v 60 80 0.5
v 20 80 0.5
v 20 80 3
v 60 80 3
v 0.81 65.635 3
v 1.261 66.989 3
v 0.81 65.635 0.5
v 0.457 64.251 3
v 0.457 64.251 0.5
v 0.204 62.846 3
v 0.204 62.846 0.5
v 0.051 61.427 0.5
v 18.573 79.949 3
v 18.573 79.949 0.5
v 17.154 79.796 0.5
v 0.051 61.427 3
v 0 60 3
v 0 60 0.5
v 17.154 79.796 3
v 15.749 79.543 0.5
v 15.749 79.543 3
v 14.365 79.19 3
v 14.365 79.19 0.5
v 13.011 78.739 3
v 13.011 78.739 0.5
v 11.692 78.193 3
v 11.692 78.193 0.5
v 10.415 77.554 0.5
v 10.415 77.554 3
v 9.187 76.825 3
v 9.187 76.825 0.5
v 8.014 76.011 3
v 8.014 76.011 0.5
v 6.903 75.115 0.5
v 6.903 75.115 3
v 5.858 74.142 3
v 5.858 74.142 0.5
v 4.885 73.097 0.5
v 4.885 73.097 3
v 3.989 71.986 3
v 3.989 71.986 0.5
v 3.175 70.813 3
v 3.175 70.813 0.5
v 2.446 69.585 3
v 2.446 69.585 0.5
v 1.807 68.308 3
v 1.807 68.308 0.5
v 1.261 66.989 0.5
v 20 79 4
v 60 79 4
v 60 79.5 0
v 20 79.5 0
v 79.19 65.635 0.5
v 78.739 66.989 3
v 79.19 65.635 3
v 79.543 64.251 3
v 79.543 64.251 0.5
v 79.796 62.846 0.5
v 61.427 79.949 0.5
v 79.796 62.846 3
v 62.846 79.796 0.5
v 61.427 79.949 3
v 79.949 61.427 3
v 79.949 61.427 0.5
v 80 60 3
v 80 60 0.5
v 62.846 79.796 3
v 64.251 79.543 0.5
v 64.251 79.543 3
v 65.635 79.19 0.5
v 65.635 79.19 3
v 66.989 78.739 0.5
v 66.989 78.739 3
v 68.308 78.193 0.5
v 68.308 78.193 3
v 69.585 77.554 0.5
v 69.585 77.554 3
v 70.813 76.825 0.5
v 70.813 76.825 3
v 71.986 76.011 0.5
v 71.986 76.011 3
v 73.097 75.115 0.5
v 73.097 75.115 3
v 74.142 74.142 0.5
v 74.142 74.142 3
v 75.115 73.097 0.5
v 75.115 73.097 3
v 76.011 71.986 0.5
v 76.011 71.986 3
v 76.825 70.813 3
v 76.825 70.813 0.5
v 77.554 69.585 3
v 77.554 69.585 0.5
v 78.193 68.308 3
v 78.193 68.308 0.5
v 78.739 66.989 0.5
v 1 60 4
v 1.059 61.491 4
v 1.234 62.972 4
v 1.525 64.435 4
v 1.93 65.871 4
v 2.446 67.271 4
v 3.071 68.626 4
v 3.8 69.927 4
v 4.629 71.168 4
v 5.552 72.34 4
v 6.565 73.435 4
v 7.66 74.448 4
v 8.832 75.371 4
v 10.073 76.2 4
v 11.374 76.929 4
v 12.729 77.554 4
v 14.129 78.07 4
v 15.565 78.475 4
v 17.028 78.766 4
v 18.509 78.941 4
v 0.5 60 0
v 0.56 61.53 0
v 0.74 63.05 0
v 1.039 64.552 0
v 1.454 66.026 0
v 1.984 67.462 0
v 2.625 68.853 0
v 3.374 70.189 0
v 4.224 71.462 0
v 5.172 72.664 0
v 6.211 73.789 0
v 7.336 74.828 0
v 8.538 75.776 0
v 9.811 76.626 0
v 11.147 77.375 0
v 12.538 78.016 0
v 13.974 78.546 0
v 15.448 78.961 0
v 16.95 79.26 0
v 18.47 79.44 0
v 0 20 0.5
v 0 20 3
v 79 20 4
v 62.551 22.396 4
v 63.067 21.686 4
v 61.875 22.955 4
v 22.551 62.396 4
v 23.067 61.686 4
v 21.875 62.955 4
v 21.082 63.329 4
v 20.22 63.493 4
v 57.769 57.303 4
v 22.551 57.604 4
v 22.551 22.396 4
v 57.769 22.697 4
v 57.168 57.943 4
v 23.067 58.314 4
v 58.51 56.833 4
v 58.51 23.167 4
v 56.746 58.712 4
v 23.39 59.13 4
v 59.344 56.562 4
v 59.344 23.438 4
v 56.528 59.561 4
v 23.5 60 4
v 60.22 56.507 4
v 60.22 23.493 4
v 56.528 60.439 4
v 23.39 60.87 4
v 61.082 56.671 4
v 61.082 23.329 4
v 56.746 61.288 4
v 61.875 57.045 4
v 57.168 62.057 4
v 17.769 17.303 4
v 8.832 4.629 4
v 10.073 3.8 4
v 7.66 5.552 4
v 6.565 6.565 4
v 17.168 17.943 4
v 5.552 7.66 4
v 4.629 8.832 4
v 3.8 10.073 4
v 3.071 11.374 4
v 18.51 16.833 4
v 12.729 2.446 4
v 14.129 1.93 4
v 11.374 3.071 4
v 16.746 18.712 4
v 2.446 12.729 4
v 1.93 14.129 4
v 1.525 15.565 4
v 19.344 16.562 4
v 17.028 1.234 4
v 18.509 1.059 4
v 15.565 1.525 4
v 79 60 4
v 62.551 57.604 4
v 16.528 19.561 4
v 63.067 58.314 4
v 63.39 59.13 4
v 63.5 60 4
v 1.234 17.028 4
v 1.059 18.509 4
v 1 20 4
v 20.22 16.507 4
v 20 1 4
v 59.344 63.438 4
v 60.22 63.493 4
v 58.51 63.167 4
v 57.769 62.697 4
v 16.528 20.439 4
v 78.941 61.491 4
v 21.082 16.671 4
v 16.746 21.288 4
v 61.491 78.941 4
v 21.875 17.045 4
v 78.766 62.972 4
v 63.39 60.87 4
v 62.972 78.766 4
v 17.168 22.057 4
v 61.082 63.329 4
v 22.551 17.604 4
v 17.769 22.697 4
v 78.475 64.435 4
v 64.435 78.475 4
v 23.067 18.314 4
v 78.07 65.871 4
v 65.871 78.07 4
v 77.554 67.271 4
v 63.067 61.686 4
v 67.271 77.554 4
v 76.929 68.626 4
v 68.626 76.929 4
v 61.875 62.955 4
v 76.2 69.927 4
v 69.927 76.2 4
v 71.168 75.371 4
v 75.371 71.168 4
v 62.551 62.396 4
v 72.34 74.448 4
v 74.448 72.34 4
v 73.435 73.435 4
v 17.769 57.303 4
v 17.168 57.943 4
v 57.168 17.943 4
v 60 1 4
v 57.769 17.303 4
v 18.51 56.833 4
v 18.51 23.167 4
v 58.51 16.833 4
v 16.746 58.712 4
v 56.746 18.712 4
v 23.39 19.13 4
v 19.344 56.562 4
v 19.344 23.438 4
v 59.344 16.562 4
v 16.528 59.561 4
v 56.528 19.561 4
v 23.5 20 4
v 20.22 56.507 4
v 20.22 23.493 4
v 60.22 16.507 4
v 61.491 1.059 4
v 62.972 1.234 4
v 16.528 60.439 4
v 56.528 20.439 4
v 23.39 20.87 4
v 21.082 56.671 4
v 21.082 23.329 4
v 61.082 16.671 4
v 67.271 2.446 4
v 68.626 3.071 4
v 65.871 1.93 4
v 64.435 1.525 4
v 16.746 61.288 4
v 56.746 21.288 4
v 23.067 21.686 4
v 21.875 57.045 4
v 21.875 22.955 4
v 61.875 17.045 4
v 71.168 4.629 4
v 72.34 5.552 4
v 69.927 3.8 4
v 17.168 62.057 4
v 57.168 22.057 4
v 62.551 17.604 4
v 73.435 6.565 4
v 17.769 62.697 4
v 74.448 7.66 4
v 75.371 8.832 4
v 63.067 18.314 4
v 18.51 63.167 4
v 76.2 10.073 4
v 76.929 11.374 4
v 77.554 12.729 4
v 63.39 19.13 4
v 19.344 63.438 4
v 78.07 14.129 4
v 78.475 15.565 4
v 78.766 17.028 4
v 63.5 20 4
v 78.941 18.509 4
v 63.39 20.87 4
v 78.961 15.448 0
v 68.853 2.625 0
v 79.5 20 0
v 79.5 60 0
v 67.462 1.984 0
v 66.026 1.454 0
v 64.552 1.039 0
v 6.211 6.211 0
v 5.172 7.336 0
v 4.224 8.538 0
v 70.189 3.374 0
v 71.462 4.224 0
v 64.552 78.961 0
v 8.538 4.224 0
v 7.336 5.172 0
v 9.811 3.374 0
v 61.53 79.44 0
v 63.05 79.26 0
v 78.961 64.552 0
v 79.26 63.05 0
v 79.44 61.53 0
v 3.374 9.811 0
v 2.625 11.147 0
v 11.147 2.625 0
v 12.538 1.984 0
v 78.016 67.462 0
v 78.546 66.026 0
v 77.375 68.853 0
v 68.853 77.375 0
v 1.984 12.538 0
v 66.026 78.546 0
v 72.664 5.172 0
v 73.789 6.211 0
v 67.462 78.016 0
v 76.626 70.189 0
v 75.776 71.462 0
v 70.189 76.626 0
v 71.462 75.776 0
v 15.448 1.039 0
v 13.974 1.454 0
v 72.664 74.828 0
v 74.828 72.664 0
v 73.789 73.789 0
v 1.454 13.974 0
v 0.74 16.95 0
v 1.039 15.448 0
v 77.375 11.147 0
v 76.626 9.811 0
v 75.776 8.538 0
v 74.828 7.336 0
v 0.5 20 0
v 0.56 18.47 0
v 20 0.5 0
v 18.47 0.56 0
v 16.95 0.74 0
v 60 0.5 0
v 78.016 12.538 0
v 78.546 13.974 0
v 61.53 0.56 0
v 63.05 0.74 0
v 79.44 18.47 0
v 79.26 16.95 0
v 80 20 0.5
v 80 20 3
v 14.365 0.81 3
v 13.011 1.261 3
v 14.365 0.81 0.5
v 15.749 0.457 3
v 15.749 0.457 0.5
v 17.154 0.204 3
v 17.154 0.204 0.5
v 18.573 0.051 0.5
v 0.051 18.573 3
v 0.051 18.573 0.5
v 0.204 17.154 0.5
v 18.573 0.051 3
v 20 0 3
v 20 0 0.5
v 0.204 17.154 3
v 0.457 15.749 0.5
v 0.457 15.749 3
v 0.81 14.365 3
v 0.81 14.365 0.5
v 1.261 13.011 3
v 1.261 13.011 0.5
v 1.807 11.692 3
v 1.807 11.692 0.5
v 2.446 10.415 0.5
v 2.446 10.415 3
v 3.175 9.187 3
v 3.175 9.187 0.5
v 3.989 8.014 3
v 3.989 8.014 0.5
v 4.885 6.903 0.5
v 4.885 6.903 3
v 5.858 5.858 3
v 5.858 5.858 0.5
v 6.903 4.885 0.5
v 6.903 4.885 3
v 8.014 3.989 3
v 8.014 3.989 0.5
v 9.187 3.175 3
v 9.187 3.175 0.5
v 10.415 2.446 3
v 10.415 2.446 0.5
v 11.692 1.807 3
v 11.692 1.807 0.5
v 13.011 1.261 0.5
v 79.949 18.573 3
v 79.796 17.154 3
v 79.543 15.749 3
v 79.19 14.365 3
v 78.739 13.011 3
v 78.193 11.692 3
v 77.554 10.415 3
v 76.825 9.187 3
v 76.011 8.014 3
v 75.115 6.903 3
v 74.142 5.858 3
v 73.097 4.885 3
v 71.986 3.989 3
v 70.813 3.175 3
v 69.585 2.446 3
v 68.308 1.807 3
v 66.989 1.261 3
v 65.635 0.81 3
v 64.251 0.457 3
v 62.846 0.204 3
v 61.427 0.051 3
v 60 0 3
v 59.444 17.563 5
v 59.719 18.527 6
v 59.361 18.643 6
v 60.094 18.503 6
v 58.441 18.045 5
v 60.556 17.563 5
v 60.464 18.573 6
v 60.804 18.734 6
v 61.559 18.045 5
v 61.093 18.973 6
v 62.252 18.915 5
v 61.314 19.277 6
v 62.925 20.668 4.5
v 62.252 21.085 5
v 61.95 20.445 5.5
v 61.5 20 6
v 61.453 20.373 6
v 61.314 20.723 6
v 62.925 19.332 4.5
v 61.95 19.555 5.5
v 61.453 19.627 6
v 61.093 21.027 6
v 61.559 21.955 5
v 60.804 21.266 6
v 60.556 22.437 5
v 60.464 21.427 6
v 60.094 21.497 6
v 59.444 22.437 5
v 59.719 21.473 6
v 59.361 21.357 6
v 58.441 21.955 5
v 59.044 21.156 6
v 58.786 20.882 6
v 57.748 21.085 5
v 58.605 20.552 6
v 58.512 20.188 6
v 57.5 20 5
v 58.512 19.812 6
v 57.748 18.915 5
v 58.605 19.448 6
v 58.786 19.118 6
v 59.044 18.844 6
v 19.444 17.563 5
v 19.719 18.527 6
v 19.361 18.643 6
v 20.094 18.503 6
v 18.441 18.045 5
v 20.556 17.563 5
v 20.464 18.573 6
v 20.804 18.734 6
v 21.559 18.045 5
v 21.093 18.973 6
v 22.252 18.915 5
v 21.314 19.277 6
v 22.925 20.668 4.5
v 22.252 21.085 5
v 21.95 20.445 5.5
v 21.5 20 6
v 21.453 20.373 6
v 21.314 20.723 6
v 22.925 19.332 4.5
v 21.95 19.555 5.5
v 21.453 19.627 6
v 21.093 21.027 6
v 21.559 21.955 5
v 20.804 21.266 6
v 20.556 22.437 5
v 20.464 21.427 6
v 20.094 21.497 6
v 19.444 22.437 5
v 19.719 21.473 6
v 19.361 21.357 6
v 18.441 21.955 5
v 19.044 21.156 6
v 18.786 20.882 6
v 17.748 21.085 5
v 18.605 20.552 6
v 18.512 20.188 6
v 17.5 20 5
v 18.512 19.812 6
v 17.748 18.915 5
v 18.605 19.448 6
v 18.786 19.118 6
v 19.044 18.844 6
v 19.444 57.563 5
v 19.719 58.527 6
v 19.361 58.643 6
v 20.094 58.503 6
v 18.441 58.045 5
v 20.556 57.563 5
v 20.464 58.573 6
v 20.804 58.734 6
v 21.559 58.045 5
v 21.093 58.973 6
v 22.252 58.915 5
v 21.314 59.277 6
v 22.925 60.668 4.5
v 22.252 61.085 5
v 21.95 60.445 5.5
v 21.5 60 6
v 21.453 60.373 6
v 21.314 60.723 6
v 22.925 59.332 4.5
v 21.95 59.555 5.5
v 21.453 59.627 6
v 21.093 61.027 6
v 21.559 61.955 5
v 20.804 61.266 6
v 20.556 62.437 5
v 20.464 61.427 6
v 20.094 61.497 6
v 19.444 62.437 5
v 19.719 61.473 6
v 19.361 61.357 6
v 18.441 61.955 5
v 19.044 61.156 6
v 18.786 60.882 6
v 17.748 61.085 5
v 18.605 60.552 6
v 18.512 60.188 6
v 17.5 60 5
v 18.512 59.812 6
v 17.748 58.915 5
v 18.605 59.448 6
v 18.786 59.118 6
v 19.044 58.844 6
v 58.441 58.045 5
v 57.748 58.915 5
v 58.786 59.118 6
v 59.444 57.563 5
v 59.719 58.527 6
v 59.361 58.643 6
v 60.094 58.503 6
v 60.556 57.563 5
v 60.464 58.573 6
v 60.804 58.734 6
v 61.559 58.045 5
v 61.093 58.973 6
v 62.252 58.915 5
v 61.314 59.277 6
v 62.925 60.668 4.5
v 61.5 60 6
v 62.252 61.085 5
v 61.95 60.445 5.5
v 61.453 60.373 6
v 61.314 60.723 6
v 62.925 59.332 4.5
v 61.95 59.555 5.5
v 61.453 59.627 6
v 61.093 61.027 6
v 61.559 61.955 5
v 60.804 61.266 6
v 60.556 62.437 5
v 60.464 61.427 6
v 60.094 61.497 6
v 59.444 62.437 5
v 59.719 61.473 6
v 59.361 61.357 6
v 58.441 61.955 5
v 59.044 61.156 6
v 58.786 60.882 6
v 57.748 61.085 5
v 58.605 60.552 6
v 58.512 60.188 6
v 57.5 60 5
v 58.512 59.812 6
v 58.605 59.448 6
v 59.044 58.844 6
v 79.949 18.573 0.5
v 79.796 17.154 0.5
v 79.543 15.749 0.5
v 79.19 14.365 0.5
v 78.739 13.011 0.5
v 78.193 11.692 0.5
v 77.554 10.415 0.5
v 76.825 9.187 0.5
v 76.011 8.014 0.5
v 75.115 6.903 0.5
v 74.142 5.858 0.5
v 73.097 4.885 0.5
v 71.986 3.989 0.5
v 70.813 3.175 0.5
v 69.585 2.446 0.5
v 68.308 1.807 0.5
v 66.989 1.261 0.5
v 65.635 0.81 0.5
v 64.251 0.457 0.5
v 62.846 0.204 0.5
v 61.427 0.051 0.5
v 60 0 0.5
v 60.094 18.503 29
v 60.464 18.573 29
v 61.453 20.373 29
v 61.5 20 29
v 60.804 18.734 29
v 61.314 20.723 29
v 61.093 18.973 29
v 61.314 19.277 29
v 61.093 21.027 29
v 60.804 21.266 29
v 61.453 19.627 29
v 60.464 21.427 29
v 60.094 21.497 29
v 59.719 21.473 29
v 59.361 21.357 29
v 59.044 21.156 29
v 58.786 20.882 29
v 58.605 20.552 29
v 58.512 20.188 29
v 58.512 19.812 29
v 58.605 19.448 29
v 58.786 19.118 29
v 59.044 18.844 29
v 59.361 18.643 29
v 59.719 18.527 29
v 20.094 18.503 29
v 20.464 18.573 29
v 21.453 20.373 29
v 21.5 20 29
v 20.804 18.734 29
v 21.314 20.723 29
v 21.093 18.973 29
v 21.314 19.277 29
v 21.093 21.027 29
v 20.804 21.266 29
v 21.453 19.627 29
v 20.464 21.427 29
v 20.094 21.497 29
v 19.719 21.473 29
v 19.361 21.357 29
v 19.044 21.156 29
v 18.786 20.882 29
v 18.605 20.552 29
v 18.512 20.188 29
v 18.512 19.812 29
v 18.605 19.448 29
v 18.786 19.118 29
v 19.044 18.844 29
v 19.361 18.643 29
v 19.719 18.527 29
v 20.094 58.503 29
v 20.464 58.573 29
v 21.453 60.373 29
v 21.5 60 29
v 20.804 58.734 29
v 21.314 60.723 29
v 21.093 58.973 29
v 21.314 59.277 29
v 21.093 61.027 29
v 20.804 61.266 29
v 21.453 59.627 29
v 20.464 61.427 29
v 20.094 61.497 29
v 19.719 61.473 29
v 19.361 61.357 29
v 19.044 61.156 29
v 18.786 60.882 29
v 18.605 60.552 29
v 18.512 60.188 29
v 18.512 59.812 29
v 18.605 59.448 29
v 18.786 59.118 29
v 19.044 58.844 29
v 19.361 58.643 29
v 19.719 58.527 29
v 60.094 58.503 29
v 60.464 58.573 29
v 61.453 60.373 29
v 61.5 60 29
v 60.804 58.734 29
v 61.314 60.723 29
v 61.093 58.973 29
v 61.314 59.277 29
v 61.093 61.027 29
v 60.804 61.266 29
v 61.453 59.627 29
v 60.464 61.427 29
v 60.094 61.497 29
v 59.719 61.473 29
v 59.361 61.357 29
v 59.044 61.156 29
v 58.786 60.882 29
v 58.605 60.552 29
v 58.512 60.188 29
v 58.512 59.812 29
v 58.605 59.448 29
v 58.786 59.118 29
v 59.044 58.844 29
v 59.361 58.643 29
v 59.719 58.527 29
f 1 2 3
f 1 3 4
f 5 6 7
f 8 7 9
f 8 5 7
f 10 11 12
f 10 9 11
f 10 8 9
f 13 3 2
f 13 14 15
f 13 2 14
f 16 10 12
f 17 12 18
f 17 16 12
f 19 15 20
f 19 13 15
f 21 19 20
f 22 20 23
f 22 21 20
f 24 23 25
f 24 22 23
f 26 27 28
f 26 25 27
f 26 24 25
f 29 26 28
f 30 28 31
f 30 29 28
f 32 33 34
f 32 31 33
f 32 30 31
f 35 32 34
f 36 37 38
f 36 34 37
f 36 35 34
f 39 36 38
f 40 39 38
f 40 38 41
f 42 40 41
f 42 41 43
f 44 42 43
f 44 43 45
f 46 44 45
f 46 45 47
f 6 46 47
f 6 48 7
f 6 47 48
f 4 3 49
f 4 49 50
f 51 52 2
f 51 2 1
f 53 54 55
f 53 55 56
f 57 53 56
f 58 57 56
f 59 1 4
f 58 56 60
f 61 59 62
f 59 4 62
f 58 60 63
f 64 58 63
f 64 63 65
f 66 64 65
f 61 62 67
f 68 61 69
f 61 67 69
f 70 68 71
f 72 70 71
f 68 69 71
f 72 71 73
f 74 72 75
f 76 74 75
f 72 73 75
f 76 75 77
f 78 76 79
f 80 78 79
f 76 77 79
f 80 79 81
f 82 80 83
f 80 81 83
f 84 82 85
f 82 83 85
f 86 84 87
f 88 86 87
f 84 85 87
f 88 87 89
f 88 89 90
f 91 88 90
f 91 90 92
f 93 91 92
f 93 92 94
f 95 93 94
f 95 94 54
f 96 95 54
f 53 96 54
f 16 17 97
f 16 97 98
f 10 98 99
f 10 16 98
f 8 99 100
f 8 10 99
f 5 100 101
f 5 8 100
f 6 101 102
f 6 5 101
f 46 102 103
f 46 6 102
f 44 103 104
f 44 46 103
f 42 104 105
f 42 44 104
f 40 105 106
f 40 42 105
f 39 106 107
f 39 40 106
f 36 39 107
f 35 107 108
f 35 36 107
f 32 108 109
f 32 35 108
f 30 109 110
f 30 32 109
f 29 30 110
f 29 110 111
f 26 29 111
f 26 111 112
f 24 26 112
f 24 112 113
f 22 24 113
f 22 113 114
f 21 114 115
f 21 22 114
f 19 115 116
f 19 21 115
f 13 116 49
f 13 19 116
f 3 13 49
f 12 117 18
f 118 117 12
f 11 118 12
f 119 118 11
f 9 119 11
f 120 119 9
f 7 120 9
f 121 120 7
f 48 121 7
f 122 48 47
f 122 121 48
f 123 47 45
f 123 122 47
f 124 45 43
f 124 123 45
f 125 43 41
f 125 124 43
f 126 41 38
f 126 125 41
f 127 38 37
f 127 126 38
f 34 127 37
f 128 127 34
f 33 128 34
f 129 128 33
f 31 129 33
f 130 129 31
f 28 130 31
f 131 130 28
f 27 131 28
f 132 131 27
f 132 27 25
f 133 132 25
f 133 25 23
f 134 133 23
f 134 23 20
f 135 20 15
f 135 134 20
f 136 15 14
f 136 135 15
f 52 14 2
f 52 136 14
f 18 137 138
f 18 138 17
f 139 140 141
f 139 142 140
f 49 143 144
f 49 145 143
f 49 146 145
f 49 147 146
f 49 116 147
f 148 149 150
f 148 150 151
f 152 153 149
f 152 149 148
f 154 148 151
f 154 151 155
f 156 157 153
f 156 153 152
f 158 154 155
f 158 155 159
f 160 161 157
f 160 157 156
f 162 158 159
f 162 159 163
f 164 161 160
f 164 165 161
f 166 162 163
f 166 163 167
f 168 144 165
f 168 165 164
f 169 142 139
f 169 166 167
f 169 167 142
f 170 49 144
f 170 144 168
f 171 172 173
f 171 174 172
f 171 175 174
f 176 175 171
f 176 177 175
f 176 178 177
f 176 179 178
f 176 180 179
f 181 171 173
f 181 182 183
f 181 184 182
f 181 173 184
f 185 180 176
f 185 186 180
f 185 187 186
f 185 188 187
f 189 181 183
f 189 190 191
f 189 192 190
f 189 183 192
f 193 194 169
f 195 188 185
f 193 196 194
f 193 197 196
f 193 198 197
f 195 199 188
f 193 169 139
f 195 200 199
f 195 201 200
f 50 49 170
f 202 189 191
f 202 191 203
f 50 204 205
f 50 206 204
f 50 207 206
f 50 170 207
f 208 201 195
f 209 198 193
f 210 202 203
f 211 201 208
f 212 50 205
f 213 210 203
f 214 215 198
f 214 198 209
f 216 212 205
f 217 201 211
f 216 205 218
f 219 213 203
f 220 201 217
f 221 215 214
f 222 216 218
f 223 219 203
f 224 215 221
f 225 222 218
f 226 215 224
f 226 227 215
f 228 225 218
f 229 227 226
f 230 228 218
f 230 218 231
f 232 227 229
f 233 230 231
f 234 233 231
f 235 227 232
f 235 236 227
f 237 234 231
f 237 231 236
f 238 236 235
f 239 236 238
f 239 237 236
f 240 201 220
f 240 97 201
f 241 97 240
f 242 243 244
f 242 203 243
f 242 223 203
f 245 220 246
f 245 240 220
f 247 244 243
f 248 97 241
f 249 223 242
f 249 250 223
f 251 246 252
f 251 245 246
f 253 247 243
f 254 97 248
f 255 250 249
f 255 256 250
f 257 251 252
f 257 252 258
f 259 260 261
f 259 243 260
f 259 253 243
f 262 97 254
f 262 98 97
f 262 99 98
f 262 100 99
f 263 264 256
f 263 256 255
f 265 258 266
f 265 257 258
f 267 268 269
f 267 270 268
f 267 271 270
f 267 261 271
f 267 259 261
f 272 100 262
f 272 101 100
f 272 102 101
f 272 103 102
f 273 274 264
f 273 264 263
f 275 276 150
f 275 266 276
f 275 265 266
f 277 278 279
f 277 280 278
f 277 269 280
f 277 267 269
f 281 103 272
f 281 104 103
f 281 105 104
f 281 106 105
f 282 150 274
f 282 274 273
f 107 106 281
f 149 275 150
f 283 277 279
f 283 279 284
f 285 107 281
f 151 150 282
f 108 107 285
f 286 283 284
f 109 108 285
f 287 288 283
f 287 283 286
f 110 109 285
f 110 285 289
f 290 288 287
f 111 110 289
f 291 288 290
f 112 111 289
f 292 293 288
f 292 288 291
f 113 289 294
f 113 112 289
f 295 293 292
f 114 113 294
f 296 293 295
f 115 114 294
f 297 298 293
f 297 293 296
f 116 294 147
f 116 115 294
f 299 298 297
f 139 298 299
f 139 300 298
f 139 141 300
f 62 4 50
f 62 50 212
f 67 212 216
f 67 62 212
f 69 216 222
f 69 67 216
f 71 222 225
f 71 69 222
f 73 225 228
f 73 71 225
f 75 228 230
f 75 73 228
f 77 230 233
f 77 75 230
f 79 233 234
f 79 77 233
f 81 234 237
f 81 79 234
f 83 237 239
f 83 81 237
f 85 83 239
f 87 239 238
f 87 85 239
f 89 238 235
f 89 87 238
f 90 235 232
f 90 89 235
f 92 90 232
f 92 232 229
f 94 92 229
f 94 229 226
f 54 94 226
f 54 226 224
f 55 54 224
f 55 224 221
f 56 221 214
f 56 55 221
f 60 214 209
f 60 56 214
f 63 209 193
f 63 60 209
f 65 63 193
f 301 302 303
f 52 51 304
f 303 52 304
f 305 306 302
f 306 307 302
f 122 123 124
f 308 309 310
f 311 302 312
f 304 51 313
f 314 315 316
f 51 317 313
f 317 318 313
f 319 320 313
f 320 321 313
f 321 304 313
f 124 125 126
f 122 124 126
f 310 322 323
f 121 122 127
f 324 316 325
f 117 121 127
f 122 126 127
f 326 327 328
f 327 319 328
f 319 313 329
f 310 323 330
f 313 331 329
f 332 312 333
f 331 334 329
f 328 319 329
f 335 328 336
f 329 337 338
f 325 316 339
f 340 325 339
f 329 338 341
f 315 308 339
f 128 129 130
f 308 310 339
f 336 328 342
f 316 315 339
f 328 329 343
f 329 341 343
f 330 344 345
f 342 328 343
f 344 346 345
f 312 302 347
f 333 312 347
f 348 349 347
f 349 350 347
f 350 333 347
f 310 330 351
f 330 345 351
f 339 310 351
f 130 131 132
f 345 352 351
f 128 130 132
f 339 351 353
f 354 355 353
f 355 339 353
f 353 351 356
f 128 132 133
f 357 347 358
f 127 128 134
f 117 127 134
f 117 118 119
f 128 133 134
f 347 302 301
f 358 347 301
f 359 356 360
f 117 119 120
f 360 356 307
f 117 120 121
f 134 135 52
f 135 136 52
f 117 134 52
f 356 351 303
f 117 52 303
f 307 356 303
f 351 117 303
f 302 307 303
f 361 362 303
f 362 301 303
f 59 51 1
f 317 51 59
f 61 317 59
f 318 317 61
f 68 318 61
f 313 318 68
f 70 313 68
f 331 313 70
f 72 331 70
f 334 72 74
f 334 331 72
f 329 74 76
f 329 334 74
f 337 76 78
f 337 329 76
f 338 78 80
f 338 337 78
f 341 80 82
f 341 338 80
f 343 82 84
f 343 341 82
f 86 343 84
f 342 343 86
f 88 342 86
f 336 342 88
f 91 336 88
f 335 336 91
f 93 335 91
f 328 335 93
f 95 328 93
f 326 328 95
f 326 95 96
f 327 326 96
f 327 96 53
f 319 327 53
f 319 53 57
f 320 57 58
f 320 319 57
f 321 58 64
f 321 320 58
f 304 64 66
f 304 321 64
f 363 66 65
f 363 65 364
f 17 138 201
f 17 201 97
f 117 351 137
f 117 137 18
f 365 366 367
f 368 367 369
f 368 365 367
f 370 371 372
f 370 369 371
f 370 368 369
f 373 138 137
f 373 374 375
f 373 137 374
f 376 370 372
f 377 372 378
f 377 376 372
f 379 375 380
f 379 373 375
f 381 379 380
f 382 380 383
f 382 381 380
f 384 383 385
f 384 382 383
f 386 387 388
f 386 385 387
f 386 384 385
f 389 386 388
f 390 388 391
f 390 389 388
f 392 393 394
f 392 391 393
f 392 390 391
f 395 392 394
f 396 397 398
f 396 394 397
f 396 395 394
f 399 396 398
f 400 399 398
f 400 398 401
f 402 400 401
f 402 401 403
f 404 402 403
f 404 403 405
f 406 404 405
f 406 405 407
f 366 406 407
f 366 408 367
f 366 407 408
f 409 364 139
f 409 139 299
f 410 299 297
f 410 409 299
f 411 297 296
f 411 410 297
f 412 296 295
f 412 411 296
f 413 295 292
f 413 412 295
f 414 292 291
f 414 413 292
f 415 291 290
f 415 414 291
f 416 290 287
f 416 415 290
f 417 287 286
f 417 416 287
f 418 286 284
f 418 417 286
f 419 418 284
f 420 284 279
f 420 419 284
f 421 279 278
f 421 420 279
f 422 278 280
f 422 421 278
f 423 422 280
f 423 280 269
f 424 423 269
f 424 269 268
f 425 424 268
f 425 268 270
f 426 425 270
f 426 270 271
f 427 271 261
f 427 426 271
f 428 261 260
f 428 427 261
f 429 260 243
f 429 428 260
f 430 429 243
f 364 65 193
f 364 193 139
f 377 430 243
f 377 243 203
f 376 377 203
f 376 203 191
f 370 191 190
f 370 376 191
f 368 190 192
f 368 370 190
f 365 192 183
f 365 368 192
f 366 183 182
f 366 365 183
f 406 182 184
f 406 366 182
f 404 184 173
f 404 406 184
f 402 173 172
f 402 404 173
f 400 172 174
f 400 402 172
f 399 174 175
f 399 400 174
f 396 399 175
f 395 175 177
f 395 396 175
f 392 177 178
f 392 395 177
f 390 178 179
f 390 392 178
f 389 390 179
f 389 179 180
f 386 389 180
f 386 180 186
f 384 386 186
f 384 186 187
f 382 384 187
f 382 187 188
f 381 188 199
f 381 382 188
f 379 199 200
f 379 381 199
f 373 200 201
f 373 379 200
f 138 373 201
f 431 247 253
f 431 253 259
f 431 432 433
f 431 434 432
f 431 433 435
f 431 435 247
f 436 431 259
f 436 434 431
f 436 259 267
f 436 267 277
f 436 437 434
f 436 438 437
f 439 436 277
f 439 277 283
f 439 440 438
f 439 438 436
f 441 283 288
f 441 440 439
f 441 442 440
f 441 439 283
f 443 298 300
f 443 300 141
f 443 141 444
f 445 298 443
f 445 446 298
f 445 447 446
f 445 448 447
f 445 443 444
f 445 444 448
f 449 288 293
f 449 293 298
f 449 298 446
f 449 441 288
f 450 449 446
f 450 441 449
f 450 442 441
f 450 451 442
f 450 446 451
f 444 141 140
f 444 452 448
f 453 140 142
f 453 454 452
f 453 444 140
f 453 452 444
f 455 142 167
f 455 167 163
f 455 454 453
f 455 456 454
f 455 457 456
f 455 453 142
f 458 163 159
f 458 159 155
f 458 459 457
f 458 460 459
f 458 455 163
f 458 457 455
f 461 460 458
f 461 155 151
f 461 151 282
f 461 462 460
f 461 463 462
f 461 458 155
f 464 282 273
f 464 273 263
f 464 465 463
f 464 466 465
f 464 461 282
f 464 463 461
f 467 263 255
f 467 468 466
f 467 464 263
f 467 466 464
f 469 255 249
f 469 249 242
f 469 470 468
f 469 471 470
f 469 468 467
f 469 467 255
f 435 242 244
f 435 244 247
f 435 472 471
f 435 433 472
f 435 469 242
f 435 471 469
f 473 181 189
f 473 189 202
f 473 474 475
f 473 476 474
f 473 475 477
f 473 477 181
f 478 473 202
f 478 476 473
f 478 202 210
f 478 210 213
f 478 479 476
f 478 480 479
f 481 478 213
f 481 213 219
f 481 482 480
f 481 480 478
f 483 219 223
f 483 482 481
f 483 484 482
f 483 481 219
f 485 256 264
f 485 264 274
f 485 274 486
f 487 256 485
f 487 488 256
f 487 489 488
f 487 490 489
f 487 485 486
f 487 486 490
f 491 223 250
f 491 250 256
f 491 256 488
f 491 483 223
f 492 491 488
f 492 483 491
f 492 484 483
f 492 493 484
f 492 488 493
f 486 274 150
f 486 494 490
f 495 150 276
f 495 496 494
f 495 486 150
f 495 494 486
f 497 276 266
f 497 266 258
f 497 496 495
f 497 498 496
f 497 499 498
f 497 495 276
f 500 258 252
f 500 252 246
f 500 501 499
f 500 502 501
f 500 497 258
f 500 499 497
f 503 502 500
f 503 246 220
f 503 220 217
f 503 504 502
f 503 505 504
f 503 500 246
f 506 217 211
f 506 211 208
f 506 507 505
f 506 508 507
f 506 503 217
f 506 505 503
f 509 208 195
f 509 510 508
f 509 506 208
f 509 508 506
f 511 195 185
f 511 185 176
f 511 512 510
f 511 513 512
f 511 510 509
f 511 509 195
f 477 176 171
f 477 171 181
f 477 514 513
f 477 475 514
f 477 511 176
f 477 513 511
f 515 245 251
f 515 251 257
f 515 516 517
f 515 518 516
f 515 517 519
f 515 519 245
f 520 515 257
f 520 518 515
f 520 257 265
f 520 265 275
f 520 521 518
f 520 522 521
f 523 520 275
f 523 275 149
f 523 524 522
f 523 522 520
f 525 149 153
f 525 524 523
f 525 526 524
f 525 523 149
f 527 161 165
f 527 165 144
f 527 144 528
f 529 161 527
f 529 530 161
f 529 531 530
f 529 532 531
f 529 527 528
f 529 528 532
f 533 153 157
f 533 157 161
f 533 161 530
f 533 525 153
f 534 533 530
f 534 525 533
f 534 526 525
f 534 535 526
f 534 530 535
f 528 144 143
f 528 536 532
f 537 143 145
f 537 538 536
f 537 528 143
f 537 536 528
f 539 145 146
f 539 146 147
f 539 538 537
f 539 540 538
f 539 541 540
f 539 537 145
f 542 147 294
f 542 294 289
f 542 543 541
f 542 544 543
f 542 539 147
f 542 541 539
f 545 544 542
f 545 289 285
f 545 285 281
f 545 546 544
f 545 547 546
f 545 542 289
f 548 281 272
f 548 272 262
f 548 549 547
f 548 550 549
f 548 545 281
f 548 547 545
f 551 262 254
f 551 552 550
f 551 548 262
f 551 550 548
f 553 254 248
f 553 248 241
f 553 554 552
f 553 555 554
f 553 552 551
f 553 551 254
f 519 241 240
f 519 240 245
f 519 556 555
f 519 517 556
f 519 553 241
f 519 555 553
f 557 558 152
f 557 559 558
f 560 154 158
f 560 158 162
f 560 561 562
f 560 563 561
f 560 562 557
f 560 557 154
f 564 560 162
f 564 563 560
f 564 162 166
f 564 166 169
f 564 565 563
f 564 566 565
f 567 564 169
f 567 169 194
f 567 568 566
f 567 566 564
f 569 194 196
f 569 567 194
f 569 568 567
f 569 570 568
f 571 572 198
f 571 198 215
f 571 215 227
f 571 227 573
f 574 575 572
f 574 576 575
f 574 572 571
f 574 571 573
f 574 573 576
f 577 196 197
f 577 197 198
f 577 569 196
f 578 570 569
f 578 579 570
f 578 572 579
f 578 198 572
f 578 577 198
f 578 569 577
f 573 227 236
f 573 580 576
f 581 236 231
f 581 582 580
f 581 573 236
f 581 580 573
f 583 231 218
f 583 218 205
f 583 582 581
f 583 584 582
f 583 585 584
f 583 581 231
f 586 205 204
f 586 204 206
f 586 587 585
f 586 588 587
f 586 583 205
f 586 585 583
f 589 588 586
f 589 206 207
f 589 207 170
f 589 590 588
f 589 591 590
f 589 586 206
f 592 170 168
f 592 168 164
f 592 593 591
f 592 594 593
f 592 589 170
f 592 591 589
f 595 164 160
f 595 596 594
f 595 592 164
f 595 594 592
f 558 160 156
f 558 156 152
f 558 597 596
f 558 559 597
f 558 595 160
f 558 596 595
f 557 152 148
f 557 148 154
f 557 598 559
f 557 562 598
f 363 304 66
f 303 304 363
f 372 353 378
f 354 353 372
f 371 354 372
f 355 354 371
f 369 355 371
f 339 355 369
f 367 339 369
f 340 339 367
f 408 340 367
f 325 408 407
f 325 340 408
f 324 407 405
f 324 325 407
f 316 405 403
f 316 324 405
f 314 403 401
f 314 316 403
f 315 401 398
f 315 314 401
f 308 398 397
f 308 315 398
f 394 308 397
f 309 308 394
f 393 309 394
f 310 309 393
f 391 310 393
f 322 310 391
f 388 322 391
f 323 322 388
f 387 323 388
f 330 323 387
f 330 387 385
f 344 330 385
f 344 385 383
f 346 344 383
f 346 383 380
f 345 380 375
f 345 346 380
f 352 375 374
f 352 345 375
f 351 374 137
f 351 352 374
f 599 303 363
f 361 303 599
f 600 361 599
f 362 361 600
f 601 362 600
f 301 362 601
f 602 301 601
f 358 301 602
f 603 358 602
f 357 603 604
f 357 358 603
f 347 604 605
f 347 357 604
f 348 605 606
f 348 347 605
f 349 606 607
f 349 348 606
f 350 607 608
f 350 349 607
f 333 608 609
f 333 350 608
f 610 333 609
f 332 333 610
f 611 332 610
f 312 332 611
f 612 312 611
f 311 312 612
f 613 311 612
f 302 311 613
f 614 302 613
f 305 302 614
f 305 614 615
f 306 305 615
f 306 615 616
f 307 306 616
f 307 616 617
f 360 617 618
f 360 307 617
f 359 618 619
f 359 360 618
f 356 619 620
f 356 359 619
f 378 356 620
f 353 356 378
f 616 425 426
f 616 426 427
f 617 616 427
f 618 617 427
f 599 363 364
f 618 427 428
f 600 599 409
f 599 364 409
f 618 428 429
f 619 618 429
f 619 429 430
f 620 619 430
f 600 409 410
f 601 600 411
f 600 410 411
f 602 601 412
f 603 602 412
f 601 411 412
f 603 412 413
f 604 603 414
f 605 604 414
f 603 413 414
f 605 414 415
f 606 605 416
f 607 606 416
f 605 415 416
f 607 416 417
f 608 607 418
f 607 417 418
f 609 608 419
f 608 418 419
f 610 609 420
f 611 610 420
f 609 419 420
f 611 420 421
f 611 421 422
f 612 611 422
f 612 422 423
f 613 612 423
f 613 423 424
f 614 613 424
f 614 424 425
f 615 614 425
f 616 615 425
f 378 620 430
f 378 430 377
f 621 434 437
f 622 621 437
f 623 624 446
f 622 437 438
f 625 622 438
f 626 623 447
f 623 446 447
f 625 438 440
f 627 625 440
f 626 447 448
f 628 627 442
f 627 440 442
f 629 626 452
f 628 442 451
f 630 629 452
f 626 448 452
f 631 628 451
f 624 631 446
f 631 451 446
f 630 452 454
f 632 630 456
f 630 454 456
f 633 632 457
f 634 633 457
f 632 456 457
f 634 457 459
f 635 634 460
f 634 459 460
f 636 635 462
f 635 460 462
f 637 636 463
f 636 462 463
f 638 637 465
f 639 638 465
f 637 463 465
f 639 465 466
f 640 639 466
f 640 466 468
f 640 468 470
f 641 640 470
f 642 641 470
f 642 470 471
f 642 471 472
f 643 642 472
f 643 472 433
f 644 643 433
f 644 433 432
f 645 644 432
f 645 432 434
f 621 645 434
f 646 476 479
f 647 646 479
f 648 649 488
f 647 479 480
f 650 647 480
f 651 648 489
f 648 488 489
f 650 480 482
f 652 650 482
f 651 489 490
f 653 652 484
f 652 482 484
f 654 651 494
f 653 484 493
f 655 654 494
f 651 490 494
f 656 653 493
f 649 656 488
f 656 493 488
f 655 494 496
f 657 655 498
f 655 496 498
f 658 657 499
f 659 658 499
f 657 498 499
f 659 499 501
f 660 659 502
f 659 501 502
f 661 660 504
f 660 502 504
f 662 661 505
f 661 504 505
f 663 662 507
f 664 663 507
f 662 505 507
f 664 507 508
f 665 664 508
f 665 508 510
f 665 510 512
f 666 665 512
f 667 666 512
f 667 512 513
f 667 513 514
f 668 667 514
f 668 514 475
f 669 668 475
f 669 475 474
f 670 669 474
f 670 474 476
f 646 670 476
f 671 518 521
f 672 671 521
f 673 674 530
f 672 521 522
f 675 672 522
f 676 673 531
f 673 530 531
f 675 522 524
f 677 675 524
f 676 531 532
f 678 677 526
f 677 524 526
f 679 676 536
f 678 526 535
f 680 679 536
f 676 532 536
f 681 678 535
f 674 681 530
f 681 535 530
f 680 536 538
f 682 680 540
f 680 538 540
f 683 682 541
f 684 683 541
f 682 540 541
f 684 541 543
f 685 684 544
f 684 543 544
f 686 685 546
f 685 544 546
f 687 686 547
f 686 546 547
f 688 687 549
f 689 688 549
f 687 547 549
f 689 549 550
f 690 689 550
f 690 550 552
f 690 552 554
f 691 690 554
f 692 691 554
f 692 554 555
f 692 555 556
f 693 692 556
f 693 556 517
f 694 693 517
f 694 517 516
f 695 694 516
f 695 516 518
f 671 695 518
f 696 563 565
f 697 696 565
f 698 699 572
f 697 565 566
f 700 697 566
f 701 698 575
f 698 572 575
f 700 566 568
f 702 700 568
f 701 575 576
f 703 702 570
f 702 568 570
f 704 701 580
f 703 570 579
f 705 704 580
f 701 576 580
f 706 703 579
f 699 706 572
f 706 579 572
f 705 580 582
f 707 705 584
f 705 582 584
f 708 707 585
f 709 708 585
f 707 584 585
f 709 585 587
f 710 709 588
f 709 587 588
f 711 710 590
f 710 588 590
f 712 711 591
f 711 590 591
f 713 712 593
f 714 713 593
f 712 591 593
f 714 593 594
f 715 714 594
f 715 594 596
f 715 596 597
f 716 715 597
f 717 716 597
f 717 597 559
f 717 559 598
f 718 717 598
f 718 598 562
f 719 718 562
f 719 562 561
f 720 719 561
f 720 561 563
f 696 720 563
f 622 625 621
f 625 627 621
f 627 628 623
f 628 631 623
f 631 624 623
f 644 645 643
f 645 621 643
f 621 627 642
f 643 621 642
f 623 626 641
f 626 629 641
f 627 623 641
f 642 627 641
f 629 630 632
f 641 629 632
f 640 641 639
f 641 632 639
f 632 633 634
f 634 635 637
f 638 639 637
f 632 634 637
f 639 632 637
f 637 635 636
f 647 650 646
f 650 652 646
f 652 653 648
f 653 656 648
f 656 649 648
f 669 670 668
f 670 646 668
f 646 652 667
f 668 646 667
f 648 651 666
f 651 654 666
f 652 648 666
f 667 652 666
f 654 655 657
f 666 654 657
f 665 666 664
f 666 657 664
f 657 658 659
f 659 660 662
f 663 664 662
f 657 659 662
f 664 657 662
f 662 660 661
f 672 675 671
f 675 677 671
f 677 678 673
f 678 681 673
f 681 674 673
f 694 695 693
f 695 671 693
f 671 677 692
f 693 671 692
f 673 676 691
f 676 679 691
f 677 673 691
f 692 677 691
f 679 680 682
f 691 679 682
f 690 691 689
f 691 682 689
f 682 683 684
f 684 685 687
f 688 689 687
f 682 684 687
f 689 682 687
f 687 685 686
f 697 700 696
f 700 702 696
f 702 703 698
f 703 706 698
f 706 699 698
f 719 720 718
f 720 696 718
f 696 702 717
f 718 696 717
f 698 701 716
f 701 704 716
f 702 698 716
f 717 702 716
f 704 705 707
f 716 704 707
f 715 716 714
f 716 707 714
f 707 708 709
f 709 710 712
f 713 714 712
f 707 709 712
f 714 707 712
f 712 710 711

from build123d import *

# Parameters (mm, degrees)
SKETCH_W        = 80
SKETCH_H        = 80
PAD_DEPTH       = 4
SKETCH001_R     = 1.5
PAD001_DEPTH    = 25
FILLET_R        = 20
CHAMFER_SIZE    = 2
CHAMFER001_SIZE = 0.5
CHAMFER002_SIZE = 1


with BuildPart() as part:
    # Sketch → Pad (new body)
    with BuildSketch(Plane.XY):
        with Locations((40, 40)):
            Rectangle(SKETCH_W, SKETCH_H)
    extrude(amount=PAD_DEPTH)

    # Sketch001 → Pad001 (new body)
    with BuildSketch(Plane.XY.offset(4)):
        with Locations((60, 60)):
            Circle(SKETCH001_R)
        with Locations((20, 60)):
            Circle(SKETCH001_R)
        with Locations((20, 20)):
            Circle(SKETCH001_R)
        with Locations((60, 20)):
            Circle(SKETCH001_R)
    extrude(amount=PAD001_DEPTH)

    # Fillet
    fillet_edges = [part.edges().sort_by_distance(p)[0] for p in [
        (80, 0, 2),
        (80, 80, 2),
        (0, 0, 2),
        (0, 80, 2),
    ]]
    fillet(fillet_edges, radius=FILLET_R)

    # Chamfer
    chamfer_edges = [part.edges().sort_by_distance(p)[0] for p in [
        (58.5, 20, 4),
        (18.5, 20, 4),
        (18.5, 60, 4),
        (58.5, 60, 4),
    ]]
    chamfer(chamfer_edges, length=CHAMFER_SIZE)

    # Chamfer001
    chamfer001_edges = [part.edges().sort_by_distance(p)[0] for p in [
        (40, 80, 0),
        (5.857864, 74.142136, 0),
        (74.142136, 74.142136, 0),
        (0, 40, 0),
        (80, 40, 0),
        (5.857864, 5.857864, 0),
        (74.142136, 5.857864, 0),
        (40, 0, 0),
    ]]
    chamfer(chamfer001_edges, length=CHAMFER001_SIZE)

    # Chamfer002
    chamfer002_edges = [part.edges().sort_by_distance(p)[0] for p in [
        (74.142136, 5.857864, 4),
        (80, 40, 4),
        (74.142136, 74.142136, 4),
        (40, 80, 4),
        (5.857864, 74.142136, 4),
        (0, 40, 4),
        (5.857864, 5.857864, 4),
        (40, 0, 4),
    ]]
    chamfer(chamfer002_edges, length=CHAMFER002_SIZE)


solid = part.part
